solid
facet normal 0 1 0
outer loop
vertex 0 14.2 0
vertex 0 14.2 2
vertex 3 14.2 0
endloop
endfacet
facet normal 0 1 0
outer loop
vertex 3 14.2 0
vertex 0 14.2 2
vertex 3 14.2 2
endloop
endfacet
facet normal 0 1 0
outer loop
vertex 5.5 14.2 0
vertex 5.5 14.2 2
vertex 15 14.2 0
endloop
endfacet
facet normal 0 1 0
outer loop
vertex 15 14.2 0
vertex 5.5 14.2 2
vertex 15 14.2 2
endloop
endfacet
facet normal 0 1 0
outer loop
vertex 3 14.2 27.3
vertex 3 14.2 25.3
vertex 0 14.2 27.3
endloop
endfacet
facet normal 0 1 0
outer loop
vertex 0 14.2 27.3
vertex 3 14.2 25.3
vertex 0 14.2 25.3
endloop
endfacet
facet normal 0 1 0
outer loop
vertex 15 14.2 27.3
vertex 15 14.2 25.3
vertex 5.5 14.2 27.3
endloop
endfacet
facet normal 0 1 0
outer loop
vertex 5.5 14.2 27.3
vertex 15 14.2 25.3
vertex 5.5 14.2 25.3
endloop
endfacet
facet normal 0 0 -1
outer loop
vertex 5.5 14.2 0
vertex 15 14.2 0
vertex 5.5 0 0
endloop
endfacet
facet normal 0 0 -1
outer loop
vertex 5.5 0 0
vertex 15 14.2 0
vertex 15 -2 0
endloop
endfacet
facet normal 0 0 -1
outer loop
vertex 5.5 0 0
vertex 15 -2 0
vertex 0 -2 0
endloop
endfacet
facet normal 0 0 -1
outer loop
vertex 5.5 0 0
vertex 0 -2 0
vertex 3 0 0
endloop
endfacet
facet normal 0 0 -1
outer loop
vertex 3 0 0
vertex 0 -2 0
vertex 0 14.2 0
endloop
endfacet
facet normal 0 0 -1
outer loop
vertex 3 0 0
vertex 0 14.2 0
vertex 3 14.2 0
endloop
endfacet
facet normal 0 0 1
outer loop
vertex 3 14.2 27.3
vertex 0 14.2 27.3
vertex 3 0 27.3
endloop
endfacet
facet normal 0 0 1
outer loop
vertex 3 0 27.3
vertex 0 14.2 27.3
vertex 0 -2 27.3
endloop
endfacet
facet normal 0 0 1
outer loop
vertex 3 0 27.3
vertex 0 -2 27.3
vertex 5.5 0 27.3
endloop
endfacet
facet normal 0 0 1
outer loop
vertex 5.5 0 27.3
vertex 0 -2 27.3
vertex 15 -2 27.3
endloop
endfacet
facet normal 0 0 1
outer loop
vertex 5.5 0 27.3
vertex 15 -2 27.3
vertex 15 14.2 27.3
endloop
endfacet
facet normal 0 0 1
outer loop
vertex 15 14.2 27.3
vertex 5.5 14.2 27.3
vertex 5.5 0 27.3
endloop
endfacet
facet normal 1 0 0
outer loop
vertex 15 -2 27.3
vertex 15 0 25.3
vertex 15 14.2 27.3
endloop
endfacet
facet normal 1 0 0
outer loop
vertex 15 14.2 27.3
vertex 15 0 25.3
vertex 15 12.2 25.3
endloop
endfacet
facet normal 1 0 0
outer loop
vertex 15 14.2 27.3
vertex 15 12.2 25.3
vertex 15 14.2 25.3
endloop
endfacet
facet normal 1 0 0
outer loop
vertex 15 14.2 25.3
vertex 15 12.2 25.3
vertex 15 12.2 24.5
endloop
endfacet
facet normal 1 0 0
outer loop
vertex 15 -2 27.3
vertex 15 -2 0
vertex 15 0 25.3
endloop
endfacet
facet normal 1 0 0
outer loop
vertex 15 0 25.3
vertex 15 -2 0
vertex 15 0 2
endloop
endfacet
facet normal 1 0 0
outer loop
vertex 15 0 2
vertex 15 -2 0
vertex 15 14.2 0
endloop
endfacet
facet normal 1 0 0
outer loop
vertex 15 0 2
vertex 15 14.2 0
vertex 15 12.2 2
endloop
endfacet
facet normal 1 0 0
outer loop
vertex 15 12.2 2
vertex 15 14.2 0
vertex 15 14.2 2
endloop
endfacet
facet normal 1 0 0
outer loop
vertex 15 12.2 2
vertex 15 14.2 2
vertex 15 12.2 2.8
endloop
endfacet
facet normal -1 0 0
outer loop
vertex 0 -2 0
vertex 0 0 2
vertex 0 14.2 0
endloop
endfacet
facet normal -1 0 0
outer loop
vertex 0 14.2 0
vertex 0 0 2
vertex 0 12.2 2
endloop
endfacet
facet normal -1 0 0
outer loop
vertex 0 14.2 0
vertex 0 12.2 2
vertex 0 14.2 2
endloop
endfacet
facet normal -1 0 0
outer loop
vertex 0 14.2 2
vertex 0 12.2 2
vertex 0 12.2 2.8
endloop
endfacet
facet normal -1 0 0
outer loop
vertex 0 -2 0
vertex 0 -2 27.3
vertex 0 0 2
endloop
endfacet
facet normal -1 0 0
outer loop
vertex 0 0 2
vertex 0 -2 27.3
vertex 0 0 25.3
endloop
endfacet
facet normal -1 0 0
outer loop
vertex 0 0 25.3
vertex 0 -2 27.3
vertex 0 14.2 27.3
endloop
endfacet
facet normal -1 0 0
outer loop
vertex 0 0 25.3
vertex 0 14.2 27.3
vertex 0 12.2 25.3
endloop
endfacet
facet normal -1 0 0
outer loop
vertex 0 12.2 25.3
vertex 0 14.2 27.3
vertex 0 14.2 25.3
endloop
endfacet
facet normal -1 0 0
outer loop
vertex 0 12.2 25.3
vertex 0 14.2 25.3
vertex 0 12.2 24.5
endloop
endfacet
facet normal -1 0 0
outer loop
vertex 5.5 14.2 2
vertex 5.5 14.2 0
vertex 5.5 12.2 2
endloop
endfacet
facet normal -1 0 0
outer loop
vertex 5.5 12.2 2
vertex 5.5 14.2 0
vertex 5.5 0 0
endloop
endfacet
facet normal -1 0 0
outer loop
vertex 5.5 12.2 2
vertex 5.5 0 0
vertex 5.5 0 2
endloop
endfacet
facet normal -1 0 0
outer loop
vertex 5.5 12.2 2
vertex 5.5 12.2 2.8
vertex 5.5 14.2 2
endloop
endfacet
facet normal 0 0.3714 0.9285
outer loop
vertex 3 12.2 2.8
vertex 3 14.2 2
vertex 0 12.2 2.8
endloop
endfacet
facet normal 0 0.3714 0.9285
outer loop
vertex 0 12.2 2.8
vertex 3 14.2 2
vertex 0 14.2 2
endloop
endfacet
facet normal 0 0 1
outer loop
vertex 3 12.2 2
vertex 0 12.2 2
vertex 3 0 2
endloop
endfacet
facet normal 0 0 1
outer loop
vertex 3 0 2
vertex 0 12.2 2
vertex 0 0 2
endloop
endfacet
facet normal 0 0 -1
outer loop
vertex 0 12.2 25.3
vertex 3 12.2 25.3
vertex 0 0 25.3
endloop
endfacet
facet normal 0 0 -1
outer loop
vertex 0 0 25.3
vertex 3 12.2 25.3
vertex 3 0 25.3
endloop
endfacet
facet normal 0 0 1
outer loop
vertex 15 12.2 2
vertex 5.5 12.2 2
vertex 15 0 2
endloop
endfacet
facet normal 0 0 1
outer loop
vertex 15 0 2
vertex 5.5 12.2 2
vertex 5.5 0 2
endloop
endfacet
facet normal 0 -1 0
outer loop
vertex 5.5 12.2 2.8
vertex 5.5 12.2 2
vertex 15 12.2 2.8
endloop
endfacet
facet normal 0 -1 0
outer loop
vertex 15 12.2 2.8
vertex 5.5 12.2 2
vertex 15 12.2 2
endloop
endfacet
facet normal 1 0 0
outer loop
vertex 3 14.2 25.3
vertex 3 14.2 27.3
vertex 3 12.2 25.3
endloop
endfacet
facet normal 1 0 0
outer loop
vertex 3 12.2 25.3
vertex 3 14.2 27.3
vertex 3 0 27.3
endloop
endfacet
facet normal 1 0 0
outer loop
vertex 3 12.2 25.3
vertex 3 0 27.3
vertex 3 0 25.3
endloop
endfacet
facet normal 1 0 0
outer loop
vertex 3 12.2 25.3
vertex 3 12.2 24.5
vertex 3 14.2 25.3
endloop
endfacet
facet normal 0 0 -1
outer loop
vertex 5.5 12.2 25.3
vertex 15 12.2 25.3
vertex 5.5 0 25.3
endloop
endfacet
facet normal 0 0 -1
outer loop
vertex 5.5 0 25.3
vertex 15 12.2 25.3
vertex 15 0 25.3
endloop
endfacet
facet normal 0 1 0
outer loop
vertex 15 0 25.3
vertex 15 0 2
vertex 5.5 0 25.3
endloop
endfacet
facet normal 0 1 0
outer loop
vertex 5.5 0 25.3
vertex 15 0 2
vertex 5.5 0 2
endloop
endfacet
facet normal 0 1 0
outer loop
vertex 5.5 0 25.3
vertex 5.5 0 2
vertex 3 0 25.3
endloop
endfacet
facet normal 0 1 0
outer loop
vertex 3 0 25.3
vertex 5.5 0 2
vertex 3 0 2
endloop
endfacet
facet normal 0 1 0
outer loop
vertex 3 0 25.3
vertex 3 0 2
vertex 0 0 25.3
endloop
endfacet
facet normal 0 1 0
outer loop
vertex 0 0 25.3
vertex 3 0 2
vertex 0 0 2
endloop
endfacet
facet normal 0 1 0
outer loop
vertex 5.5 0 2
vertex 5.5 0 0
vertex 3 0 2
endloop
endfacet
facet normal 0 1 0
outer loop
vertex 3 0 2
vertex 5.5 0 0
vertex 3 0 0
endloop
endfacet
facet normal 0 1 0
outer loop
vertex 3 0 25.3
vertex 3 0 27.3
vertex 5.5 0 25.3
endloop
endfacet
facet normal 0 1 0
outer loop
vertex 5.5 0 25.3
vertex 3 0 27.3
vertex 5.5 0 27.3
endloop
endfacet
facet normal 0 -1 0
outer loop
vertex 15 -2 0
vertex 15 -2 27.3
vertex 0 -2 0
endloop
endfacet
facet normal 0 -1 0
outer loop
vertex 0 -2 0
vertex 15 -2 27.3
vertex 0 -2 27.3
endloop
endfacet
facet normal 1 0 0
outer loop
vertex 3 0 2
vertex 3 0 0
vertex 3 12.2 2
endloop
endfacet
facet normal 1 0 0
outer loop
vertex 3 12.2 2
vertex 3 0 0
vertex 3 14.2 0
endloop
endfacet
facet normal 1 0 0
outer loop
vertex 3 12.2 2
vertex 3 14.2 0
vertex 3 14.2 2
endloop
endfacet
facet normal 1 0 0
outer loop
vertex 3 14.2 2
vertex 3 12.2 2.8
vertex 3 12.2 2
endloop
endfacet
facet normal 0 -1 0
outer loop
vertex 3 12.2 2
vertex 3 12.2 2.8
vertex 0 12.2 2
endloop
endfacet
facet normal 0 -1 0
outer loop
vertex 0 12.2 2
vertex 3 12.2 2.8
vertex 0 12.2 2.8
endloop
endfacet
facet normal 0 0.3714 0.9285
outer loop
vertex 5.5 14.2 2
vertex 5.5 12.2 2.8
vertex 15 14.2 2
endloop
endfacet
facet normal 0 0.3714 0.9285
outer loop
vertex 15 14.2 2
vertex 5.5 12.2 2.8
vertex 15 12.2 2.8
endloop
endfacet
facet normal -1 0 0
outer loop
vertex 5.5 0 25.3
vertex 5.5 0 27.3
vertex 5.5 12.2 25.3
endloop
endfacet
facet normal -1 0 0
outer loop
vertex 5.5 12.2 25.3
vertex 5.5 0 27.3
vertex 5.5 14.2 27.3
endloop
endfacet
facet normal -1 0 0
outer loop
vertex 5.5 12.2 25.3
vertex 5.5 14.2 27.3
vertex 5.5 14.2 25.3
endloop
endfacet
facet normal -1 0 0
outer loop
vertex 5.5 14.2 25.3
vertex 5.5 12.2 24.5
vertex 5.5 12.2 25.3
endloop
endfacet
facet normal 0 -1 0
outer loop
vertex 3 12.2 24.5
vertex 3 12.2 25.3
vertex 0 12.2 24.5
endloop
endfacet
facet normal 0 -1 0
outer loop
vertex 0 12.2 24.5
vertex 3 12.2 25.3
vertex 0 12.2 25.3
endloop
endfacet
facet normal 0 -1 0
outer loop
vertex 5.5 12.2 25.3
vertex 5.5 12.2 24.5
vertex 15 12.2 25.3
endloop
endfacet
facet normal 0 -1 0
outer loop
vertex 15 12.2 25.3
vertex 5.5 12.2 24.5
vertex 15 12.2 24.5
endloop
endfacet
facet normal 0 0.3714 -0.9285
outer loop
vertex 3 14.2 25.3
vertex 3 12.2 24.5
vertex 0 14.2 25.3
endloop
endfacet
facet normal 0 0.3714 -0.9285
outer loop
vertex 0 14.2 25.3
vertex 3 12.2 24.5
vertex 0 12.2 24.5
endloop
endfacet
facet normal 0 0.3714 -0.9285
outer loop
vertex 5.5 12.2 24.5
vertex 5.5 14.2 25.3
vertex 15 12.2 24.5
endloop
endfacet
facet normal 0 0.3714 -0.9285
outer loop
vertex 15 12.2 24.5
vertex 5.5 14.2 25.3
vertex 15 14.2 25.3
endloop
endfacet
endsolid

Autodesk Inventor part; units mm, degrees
ref_plane "YZ Plane" through (0, 0, 0) normal (1, 0, 0) x (0, 1, 0)
ref_plane "XZ Plane" through (0, 0, 0) normal (0, 1, 0) x (-1, 0, 0)
ref_plane "XY Plane" through (0, 0, 0) normal (0, 0, 1) x (1, 0, 0)
sketch "Sketch1" plane through (0, 0, 0) normal (0, 1, 0) x (-1, 0, 0)
  line L0 (0, 0) -> (-15, 0)
  line L1 (-15, 0) -> (-15, 27.3)
  line L2 (-15, 27.3) -> (0, 27.3)
  line L3 (0, 27.3) -> (0, 0)
  line L4 (-3, 0) -> (-3, 27.3)
  line L5 (-5.5, 0) -> (-5.5, 27.3)
  line L6 (0, 2) -> (-3, 2)
  line L7 (0, 25.3) -> (-3, 25.3)
  line L8 (-5.5, 2) -> (-15, 2)
  line L9 (-5.5, 25.3) -> (-15, 25.3)
  dimension "d0" = 27.3
  dimension "d1" = 15
  dimension "d2" = 3
  dimension "d3" = 2.5
  dimension "d4" = 2
  dimension "d5" = 2
  dimension "d6" = 2
  dimension "d7" = 2
extrude "Extrusion1" add sketch "Sketch1" against normal blind 2
extrude "Extrusion2" add sketch "Sketch1" along normal blind 14.2 contours L0 L4 L6 L3 | L0 L1 L8 L5 | L7 L4 L2 L3 | L9 L1 L2 L5
sketch "Sketch2" plane through (15, -2, 27.3) normal (1, 0, 0) x (0, 0, -1)
  line L0 (25.3, 2) -> (25.3, 16.2) projected
  line L1 (2, 2) -> (2, 16.2) projected
  line L2 (25.3, 16.2) -> (27.3, 16.2) projected
  line L3 (2, 16.2) -> (2.8, 14.2)
  line L4 (2.8, 14.2) -> (2, 14.2)
  line L5 (25.3, 16.2) -> (24.5, 14.2)
  line L6 (24.5, 14.2) -> (25.3, 14.2)
  point P0 (27.3, 2)
  dimension "d12" = 2
  dimension "d13" = 2
  dimension "d14" = 0.8
  dimension "d15" = 0.8
extrude "Extrusion3" add sketch "Sketch2" against normal up to surface (15 mm away)
sketch "Sketch3" plane through (0, -2, 27.3) normal (0, 0, 1) x (1, 0, 0)
  line L0 (3, 14.2) -> (3, 16.2) projected
  line L1 (5.5, 14.2) -> (3, 14.2) projected
  line L2 (5.5, 14.2) -> (5.5, 16.2) projected
  line L3 (5.5, 16.2) -> (3, 16.2) projected
  point P0 (0, 2)
extrude "Extrusion4" cut sketch "Sketch3" against normal through all
properties part number "servo clip"
